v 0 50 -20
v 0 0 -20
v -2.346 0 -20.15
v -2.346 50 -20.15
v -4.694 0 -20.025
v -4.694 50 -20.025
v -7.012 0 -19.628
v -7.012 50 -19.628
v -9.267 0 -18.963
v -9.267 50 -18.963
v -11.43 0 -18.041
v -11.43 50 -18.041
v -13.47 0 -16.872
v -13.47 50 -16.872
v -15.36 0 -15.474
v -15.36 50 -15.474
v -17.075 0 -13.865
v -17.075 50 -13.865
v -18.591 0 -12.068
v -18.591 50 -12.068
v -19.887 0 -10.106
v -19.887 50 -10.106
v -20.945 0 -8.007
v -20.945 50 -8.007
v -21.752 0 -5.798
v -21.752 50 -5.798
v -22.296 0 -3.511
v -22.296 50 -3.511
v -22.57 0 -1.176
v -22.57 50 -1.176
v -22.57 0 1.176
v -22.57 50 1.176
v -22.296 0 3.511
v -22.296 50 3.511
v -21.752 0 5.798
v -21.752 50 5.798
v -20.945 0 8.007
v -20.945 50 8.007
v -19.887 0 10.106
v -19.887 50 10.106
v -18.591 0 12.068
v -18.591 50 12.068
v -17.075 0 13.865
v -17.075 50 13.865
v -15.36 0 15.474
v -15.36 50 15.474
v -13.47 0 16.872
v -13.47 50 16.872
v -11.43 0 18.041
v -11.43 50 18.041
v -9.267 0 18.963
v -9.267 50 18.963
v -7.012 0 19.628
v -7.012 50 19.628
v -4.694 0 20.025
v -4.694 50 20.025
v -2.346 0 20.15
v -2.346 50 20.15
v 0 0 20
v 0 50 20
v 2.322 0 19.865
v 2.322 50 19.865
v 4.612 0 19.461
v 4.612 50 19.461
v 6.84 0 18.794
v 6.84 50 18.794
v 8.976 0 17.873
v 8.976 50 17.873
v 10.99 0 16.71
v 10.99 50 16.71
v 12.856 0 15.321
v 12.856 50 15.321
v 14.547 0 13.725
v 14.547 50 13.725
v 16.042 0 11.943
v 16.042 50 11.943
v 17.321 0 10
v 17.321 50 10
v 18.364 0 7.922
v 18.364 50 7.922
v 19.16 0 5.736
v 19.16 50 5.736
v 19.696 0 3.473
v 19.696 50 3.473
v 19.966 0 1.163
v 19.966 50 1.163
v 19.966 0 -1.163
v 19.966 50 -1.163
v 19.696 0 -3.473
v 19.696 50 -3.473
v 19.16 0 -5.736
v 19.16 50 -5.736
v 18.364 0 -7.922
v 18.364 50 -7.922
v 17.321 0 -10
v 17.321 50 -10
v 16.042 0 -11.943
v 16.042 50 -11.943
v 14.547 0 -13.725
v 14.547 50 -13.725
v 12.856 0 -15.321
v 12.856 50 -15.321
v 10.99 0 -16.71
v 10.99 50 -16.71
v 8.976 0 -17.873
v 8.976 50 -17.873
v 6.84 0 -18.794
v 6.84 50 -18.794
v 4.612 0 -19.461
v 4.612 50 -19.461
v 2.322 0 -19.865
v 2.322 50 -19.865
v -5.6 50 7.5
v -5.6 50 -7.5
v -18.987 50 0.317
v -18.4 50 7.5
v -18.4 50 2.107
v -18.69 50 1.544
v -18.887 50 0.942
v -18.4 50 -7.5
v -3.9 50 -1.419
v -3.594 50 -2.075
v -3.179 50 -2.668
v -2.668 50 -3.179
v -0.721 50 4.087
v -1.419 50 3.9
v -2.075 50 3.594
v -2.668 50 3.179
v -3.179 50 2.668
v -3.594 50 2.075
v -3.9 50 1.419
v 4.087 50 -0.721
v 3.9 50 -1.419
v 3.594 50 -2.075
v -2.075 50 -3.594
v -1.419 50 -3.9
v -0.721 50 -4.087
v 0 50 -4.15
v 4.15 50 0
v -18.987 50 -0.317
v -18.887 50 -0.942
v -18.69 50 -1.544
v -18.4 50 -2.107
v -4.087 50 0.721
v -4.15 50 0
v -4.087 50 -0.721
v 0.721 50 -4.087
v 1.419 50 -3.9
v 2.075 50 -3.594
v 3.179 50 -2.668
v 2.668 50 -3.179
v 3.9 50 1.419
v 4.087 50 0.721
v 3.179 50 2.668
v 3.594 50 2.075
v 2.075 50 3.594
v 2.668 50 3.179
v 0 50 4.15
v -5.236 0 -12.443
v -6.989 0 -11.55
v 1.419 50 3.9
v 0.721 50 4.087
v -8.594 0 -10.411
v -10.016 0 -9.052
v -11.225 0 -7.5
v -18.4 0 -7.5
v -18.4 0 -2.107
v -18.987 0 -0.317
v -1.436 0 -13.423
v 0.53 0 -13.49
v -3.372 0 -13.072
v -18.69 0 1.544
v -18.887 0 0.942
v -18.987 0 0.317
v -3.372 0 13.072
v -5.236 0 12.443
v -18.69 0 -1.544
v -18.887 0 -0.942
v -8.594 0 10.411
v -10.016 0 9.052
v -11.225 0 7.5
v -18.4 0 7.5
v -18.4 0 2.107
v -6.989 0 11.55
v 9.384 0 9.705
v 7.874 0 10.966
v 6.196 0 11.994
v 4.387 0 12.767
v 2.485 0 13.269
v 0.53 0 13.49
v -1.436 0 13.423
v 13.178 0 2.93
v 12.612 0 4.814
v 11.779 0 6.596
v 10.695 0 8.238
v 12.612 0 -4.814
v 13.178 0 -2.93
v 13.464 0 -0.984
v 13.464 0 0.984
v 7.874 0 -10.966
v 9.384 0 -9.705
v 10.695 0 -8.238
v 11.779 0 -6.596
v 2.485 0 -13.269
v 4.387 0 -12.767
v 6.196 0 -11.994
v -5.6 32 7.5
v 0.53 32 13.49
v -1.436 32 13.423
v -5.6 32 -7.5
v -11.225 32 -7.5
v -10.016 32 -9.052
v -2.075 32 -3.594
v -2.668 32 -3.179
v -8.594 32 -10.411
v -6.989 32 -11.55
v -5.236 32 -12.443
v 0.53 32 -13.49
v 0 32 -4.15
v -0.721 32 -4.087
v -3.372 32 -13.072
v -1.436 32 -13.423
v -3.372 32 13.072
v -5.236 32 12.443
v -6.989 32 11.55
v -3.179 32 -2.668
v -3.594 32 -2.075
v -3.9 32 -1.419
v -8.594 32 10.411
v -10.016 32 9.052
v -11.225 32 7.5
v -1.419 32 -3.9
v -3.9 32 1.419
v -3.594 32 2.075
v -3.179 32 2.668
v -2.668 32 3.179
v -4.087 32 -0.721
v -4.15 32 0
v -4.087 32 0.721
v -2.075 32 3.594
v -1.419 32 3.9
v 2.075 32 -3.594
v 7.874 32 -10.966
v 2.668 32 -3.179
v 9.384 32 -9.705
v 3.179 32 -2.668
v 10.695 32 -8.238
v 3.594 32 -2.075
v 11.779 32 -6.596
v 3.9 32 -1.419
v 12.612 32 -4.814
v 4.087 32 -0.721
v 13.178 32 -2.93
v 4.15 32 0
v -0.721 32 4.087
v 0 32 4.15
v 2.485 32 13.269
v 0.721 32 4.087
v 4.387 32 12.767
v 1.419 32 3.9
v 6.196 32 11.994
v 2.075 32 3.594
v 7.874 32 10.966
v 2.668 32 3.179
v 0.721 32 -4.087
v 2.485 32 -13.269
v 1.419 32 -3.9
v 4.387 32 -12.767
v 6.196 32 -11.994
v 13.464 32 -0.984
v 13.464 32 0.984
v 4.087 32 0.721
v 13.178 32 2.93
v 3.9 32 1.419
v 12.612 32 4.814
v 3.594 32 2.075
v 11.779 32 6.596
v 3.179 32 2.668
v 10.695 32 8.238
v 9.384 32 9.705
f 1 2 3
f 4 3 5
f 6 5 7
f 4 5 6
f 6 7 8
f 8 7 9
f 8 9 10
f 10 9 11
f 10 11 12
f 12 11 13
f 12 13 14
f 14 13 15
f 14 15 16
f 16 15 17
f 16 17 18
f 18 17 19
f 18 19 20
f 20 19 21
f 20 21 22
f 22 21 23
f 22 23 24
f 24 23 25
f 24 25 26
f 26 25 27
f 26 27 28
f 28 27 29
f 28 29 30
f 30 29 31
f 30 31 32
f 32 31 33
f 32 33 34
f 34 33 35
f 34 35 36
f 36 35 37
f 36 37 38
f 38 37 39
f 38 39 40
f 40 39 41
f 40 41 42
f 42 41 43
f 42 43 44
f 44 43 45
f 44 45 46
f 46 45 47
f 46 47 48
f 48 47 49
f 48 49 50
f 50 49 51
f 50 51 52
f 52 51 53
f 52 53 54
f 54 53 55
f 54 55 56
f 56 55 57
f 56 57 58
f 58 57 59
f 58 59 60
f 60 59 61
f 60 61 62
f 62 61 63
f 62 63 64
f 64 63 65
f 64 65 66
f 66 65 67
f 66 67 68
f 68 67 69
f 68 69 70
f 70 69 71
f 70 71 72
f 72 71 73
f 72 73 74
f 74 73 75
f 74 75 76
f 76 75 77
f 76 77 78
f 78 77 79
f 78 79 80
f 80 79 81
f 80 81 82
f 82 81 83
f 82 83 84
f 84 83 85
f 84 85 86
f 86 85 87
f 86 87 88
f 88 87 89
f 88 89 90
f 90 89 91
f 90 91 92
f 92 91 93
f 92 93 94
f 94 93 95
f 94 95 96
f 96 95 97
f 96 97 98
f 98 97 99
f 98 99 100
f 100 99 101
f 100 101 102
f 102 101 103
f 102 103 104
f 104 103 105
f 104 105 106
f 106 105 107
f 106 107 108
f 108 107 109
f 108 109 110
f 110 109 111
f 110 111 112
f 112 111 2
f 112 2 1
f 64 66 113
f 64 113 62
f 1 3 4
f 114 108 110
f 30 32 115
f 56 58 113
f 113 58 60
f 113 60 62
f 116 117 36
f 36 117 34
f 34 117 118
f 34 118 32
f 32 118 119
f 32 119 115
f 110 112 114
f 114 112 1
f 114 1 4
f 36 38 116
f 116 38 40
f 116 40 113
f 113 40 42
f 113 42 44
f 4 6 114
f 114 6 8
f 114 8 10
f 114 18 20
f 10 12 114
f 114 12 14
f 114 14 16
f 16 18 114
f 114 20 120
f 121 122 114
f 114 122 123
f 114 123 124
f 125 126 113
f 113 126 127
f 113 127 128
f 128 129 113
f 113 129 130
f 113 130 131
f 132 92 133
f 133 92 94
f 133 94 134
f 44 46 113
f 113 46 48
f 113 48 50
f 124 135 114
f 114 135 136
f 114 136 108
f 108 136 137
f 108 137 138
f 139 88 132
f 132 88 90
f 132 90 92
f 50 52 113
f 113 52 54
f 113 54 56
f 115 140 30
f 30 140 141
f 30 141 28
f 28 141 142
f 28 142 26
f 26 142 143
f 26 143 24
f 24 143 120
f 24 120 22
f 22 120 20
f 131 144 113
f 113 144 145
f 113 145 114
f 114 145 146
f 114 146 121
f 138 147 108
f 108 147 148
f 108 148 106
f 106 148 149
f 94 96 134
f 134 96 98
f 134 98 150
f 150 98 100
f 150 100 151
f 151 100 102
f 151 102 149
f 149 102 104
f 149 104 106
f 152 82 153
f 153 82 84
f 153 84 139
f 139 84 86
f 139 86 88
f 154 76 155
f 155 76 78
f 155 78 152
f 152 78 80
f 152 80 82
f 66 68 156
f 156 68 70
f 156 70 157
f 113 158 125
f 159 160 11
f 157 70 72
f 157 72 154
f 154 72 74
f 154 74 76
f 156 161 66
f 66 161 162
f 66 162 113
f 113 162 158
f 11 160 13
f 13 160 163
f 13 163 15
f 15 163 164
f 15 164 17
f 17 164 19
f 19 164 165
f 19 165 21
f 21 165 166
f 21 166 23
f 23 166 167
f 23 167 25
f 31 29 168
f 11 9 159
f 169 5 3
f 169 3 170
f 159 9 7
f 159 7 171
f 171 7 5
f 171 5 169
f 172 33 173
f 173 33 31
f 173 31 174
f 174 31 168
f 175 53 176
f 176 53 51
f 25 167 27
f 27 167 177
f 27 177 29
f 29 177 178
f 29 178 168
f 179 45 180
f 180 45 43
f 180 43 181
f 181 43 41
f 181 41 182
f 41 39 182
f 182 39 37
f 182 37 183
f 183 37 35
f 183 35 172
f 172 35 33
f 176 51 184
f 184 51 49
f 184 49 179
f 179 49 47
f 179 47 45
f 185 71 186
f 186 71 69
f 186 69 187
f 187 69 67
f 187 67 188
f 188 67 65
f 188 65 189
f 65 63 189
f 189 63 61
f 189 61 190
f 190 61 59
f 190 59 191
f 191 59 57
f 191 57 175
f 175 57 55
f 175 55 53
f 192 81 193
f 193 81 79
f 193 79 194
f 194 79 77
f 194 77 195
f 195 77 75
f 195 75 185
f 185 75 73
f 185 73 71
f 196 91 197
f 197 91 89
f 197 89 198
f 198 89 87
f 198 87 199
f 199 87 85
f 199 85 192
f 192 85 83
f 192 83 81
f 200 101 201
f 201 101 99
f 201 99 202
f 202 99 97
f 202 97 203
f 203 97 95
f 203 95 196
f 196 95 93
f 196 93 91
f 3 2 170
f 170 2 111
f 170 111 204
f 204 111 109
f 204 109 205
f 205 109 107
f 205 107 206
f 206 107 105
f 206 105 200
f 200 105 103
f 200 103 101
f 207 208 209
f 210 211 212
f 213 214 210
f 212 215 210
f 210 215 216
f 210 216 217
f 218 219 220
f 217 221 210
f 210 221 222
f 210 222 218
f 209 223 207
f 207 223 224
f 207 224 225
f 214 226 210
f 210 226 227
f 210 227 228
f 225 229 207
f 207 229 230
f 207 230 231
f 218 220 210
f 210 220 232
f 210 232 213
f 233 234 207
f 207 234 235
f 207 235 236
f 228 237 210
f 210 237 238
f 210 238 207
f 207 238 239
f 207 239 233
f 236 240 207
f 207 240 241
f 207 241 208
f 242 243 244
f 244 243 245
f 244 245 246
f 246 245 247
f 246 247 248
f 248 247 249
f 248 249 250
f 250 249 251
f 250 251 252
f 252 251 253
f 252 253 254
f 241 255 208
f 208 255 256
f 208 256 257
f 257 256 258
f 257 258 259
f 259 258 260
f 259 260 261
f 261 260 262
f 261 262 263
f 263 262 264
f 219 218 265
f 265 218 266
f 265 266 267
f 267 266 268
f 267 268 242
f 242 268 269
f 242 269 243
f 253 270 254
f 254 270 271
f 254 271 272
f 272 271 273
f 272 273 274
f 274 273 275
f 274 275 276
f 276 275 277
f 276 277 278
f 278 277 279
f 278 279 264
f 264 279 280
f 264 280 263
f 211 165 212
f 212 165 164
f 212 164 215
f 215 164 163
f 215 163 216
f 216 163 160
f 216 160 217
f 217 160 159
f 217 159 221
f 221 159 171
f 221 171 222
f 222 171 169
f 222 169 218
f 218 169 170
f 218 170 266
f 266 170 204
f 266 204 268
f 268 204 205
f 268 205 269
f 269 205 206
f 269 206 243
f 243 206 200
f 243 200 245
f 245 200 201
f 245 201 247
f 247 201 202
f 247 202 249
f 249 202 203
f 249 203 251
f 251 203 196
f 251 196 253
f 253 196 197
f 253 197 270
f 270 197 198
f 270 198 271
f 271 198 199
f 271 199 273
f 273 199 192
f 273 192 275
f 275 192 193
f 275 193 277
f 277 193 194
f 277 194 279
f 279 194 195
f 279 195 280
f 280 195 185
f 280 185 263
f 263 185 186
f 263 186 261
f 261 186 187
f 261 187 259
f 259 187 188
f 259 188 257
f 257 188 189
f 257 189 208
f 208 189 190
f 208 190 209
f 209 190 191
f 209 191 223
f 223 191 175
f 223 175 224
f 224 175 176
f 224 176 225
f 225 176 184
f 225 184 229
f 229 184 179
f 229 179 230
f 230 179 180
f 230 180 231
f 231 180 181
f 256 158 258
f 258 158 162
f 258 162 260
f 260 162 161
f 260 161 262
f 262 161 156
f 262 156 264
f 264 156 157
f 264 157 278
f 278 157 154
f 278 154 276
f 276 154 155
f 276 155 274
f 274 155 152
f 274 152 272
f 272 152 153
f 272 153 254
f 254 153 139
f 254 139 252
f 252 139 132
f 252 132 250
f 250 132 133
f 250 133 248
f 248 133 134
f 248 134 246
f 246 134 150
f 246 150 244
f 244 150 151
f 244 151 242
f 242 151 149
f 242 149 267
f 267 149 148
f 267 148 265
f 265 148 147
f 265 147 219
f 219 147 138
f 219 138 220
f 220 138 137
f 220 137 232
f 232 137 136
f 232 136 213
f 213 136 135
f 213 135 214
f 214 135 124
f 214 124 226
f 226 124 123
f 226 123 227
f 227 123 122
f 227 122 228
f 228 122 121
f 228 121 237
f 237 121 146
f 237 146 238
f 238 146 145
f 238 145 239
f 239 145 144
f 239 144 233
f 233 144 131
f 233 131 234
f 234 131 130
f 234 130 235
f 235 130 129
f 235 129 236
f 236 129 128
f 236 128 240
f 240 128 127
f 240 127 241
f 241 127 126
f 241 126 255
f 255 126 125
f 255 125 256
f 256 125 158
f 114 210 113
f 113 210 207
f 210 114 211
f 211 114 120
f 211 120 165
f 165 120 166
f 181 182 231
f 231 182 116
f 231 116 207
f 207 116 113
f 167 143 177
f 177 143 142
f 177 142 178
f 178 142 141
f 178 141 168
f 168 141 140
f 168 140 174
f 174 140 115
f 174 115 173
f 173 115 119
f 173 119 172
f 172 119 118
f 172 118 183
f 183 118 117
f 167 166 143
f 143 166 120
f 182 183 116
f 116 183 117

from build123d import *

# Parameters (mm, degrees)
BOSS_EXTRUDE1_DEPTH = 50
SKETCH2_R           = 13.5
CUT_EXTRUDE1_DEPTH  = 32
SKETCH3_R           = 4.15
CUT_EXTRUDE2_DEPTH  = 59.454827457
CUT_EXTRUDE3_DEPTH  = 59.454827457


with BuildPart() as part:
    # Sketch1 → Boss-Extrude1 (new body)
    with BuildSketch(Plane(origin=(0, 0, 0), x_dir=(1, 0, 0), z_dir=(0, 1, 0))):
        with BuildLine():
            ThreePointArc((0, 20), (20, 0), (0, -20))
            ThreePointArc((0, -20), (-22.604078238, 0), (0, 20))
        make_face()
    extrude(amount=BOSS_EXTRUDE1_DEPTH)

    # Sketch2 → Cut-Extrude1 (cut)
    with BuildSketch(Plane.XZ):
        with Locations(Location((0, 0, 0), (0, 0, 270))):
            Circle(SKETCH2_R)
    extrude(amount=-CUT_EXTRUDE1_DEPTH, mode=Mode.SUBTRACT)

    # Sketch3 → Cut-Extrude2 (cut, through all)
    with BuildSketch(Plane(origin=(0, 50, 0), x_dir=(1, 0, 0), z_dir=(0, 1, 0))):
        with Locations(Location((0, 0, 0), (0, 0, 270))):
            Circle(SKETCH3_R)
    extrude(amount=-CUT_EXTRUDE2_DEPTH, mode=Mode.SUBTRACT)

    # Sketch4 → Cut-Extrude3 (cut, through all)
    with BuildSketch(Plane(origin=(0, 50, 0), x_dir=(1, 0, 0), z_dir=(0, 1, 0))):
        with BuildLine():
            Line((-18.4, 7.5), (-18.4, 2.107130751))
            ThreePointArc((-18.4, 2.107130751), (-19, 0), (-18.4, -2.107130751))
            Line((-18.4, -2.107130751), (-18.4, -7.5))
            Line((-18.4, -7.5), (-5.6, -7.5))
            Line((-5.6, -7.5), (-5.6, 7.5))
            Line((-5.6, 7.5), (-18.4, 7.5))
        make_face()
    extrude(amount=-CUT_EXTRUDE3_DEPTH, mode=Mode.SUBTRACT)


solid = part.part
